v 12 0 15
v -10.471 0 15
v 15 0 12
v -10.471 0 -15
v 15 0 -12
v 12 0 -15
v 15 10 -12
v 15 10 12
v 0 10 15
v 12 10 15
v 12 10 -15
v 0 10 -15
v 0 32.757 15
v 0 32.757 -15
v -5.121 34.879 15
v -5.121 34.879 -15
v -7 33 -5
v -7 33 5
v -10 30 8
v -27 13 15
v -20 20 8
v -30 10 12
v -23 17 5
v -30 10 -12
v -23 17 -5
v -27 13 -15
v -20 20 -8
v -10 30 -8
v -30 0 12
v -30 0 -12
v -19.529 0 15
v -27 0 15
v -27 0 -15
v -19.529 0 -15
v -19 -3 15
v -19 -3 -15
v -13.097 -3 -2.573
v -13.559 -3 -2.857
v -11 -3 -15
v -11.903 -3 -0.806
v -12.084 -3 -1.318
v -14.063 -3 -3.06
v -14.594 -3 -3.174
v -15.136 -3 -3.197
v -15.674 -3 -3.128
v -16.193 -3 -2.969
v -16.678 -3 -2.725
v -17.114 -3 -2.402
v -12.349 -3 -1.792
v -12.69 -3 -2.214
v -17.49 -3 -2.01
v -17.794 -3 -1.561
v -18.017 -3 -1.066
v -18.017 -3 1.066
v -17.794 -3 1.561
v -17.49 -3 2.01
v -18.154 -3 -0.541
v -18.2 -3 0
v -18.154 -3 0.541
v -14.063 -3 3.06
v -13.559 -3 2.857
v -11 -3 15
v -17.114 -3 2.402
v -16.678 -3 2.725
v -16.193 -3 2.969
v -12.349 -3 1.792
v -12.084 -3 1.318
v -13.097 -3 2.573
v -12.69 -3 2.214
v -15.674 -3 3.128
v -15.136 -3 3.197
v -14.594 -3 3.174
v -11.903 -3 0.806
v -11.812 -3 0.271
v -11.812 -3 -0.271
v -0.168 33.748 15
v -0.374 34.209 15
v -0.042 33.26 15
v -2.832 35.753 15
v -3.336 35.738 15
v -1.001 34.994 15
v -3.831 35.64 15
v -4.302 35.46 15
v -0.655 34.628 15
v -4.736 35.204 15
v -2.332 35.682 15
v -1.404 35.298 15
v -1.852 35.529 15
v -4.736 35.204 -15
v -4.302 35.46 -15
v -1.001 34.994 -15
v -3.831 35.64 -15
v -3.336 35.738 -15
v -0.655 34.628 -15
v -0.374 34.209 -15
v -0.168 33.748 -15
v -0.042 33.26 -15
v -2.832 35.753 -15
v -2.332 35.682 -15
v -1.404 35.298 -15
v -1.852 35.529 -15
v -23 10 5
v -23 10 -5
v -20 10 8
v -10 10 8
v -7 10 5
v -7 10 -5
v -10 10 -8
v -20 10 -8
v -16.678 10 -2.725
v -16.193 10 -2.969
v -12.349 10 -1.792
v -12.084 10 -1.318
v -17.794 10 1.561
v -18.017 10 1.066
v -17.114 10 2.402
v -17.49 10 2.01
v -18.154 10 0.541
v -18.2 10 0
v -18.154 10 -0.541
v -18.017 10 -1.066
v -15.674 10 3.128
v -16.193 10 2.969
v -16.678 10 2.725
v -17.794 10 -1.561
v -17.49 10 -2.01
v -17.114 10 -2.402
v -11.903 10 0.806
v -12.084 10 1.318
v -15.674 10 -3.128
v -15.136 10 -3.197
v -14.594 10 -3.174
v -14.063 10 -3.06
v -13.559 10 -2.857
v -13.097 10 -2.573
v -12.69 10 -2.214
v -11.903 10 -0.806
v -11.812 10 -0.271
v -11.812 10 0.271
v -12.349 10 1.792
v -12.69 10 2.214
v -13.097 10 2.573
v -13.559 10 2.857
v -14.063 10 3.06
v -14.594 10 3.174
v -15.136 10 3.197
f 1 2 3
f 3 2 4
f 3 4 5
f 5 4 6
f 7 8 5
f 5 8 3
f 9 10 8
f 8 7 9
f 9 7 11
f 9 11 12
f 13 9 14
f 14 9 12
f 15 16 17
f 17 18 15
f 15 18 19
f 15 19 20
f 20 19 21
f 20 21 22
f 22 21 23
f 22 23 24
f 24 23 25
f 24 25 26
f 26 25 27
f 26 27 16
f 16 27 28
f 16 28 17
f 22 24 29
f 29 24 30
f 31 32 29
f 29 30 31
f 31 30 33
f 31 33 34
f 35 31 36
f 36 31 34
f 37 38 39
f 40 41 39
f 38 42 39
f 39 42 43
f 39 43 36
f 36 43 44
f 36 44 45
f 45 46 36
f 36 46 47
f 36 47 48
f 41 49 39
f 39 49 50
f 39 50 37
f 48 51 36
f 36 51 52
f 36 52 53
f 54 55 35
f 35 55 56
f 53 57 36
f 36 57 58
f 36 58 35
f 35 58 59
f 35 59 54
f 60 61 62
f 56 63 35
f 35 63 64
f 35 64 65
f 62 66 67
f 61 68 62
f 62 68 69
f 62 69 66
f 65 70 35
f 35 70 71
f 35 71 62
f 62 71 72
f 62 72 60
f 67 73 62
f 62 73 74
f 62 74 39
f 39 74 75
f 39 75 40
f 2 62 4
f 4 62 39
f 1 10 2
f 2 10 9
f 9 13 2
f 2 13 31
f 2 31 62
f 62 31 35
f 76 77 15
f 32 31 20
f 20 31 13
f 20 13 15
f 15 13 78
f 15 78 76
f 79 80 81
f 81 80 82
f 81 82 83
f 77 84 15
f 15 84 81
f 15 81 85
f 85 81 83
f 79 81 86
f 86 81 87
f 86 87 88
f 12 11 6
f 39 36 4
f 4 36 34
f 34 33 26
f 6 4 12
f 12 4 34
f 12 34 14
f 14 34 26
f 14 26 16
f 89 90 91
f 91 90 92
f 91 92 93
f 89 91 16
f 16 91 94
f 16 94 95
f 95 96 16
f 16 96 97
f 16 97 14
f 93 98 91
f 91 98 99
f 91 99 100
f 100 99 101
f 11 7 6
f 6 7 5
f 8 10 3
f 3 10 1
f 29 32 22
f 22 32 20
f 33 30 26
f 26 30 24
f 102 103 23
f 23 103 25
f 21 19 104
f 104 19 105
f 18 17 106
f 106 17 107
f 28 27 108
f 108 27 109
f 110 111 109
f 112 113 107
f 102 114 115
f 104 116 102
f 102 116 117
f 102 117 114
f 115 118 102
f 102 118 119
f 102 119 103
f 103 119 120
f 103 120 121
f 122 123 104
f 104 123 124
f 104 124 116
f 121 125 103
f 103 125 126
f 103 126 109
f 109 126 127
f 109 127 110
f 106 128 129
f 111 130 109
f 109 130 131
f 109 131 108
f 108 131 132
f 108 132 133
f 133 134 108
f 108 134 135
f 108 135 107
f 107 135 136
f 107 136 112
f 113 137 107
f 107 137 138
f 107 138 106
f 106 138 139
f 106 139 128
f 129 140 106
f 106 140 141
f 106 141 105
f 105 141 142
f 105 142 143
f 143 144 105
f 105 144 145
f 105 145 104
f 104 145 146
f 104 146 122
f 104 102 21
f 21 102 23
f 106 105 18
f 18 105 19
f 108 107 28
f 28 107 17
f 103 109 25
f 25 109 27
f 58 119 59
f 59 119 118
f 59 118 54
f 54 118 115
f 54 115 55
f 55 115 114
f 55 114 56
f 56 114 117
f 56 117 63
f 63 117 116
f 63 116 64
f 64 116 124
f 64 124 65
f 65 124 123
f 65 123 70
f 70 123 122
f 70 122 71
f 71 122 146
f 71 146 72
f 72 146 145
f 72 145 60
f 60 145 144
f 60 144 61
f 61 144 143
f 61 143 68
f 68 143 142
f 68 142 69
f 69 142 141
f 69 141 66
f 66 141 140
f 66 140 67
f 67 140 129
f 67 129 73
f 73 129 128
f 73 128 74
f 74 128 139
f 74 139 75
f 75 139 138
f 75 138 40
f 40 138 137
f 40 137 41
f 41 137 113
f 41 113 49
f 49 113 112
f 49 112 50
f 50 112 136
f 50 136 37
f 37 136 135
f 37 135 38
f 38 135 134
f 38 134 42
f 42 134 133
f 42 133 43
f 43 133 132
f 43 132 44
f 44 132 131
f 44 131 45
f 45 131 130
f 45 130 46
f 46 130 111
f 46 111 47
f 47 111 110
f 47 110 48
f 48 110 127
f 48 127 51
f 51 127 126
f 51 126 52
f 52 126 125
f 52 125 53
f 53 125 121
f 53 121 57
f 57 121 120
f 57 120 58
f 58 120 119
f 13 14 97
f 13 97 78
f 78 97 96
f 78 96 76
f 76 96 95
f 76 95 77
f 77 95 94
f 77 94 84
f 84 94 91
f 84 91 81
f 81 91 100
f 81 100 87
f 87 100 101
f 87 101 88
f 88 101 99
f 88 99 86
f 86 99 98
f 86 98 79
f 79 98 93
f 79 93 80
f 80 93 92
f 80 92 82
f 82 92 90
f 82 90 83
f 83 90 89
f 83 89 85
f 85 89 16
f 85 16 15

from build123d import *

# Parameters (mm, degrees)
SALIENTE_EXTRUIR1_DEPTH = 15
CHAFL_N1_SIZE           = 3
CORTAR_EXTRUIR1_START   = -10
CROQUIS3_W              = 16
CROQUIS3_H              = 16
CORTAR_EXTRUIR1_DEPTH   = 31
CHAFL_N2_SIZE           = 3
CROQUIS4_R              = 3.2
CORTAR_EXTRUIR2_DEPTH   = 14
REDONDEO1_R             = 3


with BuildPart() as part:
    # Croquis1 → Saliente-Extruir1 (new body, symmetric)
    with BuildSketch(Plane.XY):
        Polygon((-30, 0), (-30, 10), (0, 40), (0, 10), (15, 10), (15, 0), (0, 0), (-10.471019058, 0), (-11, -3), (-19, -3), (-19.528980942, 0), align=None)
    extrude(amount=SALIENTE_EXTRUIR1_DEPTH, both=True)

    # Chaflán1
    chafl_n1_edges = [part.edges().sort_by_distance(p)[0] for p in [
        (-30, 5, -15),
        (15, 5, 15),
        (15, 5, -15),
        (-30, 5, 15),
    ]]
    chamfer(chafl_n1_edges, length=CHAFL_N1_SIZE)

    # Croquis3 → Cortar-Extruir1 (cut, through all)
    with BuildSketch(Plane.XZ.offset(CORTAR_EXTRUIR1_START)):
        with Locations((-15, 0)):
            Rectangle(CROQUIS3_W, CROQUIS3_H)
    extrude(amount=-CORTAR_EXTRUIR1_DEPTH, mode=Mode.SUBTRACT)

    # Chaflán2
    chafl_n2_edges = [part.edges().sort_by_distance(p)[0] for p in [
        (-23, 13.5, -8),
        (-23, 13.5, 8),
        (-7, 21.5, 8),
        (-7, 21.5, -8),
    ]]
    chamfer(chafl_n2_edges, length=CHAFL_N2_SIZE)

    # Croquis4 → Cortar-Extruir2 (cut, through all)
    with BuildSketch(Plane(origin=(0, 10, 0), x_dir=(1, 0, 0), z_dir=(0, 1, 0))):
        with Locations((-15, 0)):
            Circle(CROQUIS4_R)
    extrude(amount=-CORTAR_EXTRUIR2_DEPTH, mode=Mode.SUBTRACT)

    # Redondeo1
    redondeo1_edges = [part.edges().sort_by_distance(p)[0] for p in [
        (0, 40, 0),
    ]]
    fillet(redondeo1_edges, radius=REDONDEO1_R)


solid = part.part
